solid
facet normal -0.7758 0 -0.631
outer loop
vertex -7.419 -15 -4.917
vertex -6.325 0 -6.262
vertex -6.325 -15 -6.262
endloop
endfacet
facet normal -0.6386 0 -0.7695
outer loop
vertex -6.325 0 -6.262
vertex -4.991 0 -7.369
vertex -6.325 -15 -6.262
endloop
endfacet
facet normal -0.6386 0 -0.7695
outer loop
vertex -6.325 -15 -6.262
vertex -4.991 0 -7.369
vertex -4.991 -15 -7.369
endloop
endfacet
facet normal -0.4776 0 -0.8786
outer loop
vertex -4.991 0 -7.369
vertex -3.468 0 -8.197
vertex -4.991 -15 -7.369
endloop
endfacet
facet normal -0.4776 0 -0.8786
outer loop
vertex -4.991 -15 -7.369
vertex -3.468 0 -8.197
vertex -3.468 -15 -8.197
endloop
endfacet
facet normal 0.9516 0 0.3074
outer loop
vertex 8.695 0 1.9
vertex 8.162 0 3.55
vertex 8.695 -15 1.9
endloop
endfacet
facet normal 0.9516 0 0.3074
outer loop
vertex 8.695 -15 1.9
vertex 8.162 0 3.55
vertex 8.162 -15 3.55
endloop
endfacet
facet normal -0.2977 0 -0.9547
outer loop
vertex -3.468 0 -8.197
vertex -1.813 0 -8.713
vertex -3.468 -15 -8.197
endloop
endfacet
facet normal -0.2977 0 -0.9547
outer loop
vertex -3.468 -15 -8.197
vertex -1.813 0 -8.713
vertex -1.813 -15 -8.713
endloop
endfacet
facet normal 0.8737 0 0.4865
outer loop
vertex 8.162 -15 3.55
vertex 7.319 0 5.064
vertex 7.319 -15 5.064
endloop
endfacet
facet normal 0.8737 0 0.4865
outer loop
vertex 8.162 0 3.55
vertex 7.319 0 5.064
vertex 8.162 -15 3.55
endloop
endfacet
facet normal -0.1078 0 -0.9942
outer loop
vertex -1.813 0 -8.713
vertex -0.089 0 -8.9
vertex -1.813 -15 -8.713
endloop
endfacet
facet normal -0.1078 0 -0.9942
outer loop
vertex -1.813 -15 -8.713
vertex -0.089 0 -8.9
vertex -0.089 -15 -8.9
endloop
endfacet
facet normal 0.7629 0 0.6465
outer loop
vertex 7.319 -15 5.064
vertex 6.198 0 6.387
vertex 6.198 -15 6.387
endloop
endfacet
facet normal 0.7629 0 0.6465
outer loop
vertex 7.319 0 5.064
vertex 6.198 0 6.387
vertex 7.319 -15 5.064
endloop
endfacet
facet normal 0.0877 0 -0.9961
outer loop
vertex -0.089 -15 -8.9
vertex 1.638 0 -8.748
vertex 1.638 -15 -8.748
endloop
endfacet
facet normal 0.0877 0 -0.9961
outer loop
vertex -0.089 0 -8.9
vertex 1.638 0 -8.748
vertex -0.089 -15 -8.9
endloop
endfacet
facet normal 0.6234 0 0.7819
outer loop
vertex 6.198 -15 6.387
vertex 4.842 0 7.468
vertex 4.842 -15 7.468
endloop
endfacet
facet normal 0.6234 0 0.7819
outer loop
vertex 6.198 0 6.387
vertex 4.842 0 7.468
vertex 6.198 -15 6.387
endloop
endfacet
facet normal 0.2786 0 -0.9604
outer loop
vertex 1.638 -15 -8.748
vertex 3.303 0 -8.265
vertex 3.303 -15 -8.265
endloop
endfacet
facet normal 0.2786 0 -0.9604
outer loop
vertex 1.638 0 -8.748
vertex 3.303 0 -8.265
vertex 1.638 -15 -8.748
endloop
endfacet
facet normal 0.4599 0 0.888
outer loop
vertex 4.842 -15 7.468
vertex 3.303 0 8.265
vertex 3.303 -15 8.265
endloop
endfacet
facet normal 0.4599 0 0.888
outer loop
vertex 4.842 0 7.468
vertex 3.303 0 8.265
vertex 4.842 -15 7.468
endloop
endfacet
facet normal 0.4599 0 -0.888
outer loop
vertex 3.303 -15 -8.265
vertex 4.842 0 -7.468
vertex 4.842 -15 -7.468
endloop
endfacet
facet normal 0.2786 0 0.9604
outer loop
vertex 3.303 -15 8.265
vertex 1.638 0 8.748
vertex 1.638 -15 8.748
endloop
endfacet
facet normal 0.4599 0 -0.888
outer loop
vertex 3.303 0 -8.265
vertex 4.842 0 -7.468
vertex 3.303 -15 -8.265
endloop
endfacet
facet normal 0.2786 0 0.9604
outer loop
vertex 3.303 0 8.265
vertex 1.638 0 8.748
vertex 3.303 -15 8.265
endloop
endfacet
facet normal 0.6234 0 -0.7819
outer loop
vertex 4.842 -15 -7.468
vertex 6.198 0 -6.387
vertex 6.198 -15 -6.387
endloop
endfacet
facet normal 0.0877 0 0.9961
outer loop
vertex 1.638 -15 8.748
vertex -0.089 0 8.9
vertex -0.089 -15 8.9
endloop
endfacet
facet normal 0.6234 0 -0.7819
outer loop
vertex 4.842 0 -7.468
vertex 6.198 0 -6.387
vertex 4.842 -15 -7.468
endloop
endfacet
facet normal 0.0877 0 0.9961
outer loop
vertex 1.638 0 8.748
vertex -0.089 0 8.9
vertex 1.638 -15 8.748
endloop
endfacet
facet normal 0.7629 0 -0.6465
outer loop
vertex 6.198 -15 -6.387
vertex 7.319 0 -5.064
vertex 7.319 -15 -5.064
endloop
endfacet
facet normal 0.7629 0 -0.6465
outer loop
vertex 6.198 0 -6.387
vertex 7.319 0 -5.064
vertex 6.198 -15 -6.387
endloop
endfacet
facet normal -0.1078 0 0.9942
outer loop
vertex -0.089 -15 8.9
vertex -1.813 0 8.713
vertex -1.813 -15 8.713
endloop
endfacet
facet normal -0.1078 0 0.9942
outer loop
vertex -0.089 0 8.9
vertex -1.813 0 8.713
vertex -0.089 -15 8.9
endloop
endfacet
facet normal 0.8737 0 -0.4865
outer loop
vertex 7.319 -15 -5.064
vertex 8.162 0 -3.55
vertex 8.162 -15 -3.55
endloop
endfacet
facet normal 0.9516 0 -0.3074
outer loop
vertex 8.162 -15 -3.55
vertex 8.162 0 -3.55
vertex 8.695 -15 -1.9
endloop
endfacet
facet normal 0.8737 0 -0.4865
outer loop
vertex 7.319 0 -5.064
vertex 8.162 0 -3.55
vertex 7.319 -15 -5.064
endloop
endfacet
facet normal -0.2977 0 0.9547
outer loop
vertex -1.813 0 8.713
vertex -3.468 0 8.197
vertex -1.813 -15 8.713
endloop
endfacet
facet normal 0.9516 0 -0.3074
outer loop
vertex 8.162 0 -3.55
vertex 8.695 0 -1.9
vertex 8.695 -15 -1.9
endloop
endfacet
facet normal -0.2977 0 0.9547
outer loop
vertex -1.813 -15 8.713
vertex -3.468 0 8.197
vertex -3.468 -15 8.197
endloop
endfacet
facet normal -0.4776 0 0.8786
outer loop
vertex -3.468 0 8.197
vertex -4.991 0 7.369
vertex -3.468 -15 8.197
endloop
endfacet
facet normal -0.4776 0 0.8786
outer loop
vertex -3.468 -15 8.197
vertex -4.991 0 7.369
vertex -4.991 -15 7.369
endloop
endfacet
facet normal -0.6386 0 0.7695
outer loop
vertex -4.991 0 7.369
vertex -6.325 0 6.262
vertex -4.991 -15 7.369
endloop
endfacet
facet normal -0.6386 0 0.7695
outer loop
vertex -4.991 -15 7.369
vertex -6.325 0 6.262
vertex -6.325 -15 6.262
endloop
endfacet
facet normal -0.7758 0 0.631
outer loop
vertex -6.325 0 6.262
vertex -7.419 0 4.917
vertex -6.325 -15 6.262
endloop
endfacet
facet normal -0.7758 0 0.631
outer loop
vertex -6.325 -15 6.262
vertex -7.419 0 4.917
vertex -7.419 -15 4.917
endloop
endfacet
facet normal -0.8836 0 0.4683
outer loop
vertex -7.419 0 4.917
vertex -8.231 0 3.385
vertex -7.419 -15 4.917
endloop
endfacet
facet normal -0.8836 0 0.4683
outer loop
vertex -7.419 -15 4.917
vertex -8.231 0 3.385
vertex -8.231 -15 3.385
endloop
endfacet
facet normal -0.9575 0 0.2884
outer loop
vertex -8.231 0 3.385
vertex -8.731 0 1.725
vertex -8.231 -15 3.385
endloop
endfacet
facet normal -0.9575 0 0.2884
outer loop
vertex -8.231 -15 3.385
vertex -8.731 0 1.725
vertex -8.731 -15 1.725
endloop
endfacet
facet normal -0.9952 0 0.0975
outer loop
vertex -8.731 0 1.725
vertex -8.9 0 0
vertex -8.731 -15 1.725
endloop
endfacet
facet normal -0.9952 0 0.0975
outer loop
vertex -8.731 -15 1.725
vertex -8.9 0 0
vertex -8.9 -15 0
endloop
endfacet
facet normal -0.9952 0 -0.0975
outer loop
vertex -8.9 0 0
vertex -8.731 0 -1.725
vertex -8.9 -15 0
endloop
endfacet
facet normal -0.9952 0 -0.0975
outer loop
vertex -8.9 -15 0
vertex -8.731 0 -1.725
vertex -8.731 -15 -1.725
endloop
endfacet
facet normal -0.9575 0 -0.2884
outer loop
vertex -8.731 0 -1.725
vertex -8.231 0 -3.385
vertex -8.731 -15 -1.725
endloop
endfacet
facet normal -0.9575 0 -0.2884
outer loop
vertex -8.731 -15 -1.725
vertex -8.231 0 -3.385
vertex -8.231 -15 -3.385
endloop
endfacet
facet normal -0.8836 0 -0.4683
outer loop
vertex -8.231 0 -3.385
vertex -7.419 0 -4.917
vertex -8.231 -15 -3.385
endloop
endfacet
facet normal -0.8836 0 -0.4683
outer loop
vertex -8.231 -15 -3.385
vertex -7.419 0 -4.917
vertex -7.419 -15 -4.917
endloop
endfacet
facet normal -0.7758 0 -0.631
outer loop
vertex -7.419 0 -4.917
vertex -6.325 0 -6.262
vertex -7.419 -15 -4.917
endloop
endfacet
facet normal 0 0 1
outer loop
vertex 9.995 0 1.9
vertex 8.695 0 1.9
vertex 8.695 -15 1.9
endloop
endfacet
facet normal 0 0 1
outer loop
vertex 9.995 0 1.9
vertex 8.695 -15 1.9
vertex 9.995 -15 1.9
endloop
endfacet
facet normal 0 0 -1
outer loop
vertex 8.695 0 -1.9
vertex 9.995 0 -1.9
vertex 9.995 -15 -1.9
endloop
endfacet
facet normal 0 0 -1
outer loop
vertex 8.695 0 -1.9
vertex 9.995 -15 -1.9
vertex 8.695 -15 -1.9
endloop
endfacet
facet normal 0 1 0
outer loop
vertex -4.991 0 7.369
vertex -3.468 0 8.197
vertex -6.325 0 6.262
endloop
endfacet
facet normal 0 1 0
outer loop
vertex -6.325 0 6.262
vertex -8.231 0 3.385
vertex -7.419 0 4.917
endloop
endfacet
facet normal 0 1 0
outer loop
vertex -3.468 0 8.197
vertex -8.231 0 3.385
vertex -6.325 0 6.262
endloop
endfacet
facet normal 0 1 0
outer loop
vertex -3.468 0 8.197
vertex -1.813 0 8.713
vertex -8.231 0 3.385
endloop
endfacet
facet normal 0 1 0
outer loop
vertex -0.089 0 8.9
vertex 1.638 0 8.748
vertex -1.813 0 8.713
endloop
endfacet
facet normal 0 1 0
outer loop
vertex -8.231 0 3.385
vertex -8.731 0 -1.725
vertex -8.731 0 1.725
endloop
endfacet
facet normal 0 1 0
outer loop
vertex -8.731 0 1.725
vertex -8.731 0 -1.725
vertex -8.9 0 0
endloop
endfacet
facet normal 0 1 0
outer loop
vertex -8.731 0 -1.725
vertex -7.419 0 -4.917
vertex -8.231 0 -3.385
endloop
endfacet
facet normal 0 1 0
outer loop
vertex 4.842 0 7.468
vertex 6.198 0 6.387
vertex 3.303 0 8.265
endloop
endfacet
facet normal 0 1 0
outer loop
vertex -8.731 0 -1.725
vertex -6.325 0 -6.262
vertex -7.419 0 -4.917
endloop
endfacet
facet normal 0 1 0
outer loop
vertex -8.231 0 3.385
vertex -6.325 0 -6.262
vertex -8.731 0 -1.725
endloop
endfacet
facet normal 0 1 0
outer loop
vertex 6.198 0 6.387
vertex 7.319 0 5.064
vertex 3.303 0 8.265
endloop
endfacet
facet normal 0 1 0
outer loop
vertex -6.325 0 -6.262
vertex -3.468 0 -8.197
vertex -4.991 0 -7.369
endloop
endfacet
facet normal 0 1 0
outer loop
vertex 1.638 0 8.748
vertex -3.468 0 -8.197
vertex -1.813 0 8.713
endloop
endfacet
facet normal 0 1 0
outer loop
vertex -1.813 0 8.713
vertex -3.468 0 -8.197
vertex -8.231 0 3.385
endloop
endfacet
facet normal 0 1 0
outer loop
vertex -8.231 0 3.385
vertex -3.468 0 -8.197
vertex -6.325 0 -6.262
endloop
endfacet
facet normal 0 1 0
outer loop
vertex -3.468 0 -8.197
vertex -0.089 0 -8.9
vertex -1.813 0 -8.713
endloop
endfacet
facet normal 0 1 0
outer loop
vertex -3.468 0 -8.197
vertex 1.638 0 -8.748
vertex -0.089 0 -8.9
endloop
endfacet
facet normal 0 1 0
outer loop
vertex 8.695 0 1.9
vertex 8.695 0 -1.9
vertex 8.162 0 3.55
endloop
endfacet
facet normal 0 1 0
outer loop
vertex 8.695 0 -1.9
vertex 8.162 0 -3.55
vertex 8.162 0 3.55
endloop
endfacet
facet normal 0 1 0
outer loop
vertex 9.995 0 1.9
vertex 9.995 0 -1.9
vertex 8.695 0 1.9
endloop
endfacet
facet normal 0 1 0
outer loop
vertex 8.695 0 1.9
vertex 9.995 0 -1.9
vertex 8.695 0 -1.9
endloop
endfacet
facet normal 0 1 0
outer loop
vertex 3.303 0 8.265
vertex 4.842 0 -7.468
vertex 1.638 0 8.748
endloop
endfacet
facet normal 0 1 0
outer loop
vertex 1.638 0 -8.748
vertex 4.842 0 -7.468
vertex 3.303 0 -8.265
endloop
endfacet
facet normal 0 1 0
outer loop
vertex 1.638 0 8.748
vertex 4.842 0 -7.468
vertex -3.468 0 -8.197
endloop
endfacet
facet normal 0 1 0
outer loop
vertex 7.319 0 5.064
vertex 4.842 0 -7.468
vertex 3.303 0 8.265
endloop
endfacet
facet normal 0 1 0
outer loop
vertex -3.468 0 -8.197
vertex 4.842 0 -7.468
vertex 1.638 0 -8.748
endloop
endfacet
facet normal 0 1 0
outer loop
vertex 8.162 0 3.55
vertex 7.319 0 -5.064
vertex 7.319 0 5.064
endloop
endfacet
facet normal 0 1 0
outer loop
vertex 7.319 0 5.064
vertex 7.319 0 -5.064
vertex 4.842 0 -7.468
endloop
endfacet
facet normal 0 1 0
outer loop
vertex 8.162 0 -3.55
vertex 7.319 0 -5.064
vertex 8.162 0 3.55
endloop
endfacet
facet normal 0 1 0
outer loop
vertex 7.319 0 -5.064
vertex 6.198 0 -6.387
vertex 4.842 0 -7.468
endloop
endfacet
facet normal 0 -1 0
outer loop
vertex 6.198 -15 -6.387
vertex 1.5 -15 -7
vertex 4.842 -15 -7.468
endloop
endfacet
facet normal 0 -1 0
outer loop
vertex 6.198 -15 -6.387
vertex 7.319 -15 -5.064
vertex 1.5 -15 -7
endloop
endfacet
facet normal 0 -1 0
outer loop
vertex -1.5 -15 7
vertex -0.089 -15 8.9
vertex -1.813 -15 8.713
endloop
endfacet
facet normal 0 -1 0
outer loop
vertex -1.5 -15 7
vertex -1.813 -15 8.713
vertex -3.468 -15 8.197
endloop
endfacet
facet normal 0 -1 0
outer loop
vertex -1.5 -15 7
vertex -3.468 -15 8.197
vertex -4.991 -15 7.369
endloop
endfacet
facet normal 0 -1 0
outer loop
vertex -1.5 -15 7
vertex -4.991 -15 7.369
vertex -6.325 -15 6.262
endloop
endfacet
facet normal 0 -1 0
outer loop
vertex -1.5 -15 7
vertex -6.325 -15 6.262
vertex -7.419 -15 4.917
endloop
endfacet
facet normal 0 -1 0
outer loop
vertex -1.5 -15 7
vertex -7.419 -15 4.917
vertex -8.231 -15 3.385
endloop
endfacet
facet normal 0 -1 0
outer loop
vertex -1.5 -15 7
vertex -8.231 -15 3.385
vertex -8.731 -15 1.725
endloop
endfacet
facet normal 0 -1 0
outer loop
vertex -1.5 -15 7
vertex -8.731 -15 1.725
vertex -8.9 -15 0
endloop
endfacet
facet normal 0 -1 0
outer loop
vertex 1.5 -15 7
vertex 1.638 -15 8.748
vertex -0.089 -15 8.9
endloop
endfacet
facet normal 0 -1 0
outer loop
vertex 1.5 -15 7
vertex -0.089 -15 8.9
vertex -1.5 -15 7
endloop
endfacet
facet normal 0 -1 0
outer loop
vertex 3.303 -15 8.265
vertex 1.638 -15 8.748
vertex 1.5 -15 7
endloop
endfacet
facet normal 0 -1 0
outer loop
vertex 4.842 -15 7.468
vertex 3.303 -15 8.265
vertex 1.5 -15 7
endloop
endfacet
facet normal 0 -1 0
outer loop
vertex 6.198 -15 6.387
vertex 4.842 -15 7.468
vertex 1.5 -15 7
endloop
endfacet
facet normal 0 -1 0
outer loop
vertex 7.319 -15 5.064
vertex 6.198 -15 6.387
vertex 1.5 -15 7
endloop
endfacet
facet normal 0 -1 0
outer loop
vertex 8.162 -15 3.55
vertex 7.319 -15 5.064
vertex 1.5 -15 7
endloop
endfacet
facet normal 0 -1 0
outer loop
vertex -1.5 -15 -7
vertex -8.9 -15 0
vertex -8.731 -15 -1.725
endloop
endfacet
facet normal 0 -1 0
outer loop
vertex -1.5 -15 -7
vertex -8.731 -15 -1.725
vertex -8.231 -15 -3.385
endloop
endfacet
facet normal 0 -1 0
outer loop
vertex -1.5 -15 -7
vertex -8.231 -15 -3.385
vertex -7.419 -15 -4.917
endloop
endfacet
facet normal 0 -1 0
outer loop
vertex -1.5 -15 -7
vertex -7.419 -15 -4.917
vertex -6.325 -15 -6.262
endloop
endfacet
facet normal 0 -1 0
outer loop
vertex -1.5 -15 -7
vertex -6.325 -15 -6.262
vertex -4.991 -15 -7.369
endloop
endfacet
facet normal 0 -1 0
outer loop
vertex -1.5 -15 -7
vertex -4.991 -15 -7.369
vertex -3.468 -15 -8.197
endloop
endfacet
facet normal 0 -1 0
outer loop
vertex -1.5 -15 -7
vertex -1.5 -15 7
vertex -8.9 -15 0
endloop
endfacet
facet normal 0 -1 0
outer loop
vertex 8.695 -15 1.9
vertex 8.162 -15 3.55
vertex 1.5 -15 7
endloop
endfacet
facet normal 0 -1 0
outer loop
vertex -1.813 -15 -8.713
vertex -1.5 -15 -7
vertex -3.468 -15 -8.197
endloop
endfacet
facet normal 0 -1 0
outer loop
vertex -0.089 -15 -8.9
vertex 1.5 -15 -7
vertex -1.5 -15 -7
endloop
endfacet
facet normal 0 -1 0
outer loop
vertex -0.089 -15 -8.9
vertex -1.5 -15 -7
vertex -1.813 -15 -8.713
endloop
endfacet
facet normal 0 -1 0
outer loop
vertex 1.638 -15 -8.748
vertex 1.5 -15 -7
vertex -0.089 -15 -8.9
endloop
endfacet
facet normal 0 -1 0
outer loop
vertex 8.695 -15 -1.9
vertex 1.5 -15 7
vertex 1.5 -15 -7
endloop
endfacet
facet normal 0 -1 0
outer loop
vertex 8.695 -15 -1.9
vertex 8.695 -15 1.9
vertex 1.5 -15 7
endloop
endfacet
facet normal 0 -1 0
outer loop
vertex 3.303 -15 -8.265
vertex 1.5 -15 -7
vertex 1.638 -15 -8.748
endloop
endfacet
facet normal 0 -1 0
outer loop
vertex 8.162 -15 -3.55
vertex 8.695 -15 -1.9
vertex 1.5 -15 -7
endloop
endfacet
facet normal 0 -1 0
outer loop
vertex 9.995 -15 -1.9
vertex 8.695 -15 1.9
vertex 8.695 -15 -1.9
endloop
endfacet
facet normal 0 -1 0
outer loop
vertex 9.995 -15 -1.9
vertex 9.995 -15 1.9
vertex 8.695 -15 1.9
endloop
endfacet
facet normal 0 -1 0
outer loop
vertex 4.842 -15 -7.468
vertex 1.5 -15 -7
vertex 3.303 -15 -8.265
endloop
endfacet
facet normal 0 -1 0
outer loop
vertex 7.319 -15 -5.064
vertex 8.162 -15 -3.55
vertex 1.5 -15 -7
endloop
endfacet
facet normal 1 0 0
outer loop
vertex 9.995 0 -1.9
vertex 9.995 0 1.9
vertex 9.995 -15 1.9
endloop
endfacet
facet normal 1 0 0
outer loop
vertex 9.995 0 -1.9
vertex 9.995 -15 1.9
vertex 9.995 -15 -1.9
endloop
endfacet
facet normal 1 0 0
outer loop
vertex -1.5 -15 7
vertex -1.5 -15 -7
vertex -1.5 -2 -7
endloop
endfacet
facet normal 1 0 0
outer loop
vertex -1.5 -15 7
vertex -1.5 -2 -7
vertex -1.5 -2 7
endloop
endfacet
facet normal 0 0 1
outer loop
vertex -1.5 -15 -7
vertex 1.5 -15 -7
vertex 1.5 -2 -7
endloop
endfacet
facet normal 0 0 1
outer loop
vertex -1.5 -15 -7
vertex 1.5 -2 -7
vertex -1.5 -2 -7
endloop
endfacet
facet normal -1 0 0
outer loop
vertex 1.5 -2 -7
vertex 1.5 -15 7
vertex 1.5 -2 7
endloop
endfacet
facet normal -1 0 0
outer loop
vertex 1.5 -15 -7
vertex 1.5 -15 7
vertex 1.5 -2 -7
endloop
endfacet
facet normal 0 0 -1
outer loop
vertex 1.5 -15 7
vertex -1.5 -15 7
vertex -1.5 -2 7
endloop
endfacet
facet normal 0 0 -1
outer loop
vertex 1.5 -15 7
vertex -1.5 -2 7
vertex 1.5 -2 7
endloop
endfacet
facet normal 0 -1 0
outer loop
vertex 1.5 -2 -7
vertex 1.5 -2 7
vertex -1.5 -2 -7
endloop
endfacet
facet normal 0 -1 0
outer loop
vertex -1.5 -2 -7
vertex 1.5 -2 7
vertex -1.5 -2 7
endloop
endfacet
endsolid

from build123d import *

# Parameters (mm, degrees)
PAD_DEPTH    = 15
SKETCH001_W  = 3
SKETCH001_H  = 14
POCKET_DEPTH = 13


with BuildPart() as part:
    # Sketch → Pad (new body)
    with BuildSketch(Plane.XZ):
        with BuildLine():
            ThreePointArc((8.694826, 1.9), (-8.9, 0), (8.694826, -1.9))
            Line((9.994826, -1.9), (8.694826, -1.9))
            Line((9.994826, 1.9), (9.994826, -1.9))
            Line((8.694826, 1.9), (9.994826, 1.9))
        make_face()
    extrude(amount=PAD_DEPTH)

    # Sketch001 (on Face6 of Pad) → Pocket (cut)
    with BuildSketch(Plane.XZ.offset(15)):
        Rectangle(SKETCH001_W, SKETCH001_H)
    extrude(amount=-POCKET_DEPTH, mode=Mode.SUBTRACT)


solid = part.part
